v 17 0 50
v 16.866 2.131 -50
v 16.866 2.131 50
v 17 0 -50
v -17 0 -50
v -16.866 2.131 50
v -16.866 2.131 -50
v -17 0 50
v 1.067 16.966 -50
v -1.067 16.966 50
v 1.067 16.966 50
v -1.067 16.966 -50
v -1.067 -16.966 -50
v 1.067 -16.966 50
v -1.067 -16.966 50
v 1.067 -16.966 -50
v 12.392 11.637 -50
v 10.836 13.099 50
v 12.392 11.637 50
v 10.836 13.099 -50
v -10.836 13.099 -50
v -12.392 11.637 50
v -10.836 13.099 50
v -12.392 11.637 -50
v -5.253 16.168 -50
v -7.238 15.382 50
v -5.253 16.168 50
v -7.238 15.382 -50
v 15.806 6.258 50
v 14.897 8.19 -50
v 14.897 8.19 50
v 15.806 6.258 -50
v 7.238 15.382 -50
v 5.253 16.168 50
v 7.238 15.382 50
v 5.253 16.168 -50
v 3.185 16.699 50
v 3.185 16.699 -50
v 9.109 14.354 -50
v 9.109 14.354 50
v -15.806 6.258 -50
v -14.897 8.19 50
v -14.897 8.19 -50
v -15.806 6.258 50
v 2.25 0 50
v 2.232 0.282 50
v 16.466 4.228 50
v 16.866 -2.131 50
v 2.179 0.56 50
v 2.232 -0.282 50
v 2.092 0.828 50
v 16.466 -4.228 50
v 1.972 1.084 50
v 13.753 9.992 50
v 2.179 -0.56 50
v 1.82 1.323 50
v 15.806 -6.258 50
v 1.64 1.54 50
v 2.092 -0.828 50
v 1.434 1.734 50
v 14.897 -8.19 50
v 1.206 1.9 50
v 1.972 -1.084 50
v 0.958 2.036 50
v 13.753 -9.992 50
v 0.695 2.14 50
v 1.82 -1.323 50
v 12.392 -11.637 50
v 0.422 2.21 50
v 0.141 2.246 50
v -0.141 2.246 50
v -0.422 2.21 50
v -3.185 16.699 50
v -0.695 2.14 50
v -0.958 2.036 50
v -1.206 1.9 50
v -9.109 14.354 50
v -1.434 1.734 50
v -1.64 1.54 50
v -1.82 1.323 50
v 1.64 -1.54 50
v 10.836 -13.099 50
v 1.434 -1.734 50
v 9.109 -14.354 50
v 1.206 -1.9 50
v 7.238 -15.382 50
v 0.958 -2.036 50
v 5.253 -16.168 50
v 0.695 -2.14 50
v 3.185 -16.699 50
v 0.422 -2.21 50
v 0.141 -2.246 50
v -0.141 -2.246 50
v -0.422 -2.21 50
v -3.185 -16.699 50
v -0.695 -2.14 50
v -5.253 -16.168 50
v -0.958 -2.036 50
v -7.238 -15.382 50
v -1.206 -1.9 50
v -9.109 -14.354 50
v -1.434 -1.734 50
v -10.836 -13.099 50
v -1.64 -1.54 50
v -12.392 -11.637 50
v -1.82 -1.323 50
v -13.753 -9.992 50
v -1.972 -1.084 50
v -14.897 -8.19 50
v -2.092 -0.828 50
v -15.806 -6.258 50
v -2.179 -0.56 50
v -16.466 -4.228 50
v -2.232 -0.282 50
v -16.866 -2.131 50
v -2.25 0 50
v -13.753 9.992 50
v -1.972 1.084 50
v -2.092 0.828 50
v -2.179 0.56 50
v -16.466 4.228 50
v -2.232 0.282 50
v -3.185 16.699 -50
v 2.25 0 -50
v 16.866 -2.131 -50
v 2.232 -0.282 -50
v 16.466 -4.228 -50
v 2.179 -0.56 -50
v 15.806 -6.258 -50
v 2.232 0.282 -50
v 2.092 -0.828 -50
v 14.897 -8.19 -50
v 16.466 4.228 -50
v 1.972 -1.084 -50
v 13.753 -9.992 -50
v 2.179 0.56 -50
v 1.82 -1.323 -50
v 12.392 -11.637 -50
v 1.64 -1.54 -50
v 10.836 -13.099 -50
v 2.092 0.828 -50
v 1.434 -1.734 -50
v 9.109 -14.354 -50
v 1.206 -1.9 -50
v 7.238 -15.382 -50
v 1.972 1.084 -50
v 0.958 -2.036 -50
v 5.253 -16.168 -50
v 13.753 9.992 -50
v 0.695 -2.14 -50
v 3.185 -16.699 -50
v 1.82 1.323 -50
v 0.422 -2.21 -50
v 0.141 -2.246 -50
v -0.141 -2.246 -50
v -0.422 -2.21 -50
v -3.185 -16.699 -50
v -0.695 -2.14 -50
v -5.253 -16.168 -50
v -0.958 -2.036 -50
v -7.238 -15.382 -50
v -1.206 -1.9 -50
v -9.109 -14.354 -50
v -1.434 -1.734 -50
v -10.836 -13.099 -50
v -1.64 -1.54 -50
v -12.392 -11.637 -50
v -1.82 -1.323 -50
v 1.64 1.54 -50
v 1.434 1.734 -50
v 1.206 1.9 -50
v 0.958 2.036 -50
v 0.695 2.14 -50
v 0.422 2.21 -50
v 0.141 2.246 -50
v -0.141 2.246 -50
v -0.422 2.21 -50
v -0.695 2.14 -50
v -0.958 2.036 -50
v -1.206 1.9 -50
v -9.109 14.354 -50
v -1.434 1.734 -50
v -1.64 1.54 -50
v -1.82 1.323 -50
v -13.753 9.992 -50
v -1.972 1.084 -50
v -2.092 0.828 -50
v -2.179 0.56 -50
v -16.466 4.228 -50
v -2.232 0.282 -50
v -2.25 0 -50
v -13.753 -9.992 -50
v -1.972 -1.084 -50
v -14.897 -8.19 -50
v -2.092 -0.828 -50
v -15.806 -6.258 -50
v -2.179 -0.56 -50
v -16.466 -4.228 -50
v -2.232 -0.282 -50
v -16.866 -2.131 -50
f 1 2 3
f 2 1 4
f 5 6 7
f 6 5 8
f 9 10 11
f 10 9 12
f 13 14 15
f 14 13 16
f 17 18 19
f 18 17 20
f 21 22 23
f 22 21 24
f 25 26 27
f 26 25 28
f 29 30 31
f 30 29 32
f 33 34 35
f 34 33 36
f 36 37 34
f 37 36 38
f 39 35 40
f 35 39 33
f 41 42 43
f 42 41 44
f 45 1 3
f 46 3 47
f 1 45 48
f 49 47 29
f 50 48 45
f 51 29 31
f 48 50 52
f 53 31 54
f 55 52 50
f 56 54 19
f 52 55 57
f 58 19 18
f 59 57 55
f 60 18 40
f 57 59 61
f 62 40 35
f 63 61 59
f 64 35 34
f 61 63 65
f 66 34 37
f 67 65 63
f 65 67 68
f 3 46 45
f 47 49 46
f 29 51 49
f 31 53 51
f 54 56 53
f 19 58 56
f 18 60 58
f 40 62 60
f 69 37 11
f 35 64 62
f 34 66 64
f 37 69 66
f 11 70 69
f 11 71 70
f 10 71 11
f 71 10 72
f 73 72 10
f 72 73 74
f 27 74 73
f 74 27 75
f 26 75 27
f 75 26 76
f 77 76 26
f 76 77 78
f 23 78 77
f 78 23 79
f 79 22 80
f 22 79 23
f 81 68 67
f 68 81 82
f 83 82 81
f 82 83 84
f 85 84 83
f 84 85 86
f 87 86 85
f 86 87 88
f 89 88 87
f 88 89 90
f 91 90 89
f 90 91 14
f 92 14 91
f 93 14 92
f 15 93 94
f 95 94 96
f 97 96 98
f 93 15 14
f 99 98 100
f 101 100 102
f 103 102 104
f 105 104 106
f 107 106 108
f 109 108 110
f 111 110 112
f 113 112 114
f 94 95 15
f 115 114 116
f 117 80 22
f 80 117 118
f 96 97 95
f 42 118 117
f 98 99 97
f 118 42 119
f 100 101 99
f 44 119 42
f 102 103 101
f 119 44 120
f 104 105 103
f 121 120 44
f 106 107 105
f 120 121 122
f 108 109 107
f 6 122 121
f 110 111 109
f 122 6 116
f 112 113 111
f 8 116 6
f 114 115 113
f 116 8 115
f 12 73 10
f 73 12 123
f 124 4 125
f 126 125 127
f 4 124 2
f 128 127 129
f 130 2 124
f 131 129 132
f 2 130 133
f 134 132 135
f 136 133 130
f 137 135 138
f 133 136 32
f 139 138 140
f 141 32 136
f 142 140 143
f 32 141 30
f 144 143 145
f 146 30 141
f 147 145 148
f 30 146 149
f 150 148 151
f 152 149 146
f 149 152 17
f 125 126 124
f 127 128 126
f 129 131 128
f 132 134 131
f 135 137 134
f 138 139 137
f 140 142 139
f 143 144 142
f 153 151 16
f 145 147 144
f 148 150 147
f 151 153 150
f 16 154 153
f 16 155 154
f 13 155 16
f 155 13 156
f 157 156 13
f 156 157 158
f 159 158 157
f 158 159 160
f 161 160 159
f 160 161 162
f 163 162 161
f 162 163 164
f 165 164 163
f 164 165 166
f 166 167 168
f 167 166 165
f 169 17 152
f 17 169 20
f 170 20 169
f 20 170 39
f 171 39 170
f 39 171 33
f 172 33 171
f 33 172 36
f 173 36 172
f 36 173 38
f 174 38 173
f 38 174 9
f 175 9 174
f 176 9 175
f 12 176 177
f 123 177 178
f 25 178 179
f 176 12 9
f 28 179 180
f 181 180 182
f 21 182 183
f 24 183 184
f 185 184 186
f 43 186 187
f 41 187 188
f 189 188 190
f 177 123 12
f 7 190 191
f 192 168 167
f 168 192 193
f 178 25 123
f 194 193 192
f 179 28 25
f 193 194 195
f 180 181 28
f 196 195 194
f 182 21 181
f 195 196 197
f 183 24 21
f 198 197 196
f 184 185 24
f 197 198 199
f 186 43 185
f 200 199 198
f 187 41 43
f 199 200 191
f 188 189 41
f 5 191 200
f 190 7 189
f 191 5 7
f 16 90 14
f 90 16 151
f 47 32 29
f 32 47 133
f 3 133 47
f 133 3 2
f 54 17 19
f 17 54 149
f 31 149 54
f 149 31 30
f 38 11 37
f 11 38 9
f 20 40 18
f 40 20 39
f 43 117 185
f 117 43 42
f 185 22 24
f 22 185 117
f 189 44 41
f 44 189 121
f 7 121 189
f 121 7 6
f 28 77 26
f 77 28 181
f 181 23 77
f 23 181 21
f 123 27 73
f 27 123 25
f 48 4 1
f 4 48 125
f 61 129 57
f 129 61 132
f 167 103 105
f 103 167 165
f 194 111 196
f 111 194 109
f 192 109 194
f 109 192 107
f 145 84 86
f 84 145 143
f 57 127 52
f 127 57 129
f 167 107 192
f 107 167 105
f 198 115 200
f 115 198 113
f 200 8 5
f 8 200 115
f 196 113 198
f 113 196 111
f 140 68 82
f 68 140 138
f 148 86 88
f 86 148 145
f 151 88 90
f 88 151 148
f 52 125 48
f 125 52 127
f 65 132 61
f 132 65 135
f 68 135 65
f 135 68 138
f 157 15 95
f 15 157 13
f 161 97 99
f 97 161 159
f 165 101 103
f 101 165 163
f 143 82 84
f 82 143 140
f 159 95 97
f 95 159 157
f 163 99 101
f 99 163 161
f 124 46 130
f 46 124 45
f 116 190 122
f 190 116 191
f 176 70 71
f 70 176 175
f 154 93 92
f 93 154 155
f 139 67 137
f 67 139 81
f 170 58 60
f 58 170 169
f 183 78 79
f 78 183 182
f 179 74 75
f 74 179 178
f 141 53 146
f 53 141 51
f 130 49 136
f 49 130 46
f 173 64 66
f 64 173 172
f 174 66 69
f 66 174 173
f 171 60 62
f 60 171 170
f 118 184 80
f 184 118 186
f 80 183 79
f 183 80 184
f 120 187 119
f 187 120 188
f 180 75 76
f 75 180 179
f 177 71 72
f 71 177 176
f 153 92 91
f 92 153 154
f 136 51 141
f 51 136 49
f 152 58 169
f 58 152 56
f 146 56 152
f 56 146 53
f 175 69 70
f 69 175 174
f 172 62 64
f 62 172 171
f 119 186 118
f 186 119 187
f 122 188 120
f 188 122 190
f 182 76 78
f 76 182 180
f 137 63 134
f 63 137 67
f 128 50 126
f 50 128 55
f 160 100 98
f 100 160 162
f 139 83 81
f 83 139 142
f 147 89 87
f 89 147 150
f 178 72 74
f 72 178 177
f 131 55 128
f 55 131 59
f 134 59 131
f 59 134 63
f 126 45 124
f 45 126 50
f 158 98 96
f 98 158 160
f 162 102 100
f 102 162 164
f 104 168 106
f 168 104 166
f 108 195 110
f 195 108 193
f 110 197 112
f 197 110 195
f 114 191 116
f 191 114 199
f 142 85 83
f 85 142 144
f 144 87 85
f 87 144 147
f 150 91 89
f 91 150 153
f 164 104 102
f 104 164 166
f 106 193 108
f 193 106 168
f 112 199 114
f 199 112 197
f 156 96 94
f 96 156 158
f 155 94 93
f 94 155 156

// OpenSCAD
$fn = 50;


difference() {
	union() {
		translate(v = [0, 0, -50.0000000000]) {
			cylinder(h = 100, r = 17.0000000000);
		}
	}
	union() {
		translate(v = [0, 0, -100.0000000000]) {
			cylinder(h = 200, r = 2.2500000000);
		}
	}
}
